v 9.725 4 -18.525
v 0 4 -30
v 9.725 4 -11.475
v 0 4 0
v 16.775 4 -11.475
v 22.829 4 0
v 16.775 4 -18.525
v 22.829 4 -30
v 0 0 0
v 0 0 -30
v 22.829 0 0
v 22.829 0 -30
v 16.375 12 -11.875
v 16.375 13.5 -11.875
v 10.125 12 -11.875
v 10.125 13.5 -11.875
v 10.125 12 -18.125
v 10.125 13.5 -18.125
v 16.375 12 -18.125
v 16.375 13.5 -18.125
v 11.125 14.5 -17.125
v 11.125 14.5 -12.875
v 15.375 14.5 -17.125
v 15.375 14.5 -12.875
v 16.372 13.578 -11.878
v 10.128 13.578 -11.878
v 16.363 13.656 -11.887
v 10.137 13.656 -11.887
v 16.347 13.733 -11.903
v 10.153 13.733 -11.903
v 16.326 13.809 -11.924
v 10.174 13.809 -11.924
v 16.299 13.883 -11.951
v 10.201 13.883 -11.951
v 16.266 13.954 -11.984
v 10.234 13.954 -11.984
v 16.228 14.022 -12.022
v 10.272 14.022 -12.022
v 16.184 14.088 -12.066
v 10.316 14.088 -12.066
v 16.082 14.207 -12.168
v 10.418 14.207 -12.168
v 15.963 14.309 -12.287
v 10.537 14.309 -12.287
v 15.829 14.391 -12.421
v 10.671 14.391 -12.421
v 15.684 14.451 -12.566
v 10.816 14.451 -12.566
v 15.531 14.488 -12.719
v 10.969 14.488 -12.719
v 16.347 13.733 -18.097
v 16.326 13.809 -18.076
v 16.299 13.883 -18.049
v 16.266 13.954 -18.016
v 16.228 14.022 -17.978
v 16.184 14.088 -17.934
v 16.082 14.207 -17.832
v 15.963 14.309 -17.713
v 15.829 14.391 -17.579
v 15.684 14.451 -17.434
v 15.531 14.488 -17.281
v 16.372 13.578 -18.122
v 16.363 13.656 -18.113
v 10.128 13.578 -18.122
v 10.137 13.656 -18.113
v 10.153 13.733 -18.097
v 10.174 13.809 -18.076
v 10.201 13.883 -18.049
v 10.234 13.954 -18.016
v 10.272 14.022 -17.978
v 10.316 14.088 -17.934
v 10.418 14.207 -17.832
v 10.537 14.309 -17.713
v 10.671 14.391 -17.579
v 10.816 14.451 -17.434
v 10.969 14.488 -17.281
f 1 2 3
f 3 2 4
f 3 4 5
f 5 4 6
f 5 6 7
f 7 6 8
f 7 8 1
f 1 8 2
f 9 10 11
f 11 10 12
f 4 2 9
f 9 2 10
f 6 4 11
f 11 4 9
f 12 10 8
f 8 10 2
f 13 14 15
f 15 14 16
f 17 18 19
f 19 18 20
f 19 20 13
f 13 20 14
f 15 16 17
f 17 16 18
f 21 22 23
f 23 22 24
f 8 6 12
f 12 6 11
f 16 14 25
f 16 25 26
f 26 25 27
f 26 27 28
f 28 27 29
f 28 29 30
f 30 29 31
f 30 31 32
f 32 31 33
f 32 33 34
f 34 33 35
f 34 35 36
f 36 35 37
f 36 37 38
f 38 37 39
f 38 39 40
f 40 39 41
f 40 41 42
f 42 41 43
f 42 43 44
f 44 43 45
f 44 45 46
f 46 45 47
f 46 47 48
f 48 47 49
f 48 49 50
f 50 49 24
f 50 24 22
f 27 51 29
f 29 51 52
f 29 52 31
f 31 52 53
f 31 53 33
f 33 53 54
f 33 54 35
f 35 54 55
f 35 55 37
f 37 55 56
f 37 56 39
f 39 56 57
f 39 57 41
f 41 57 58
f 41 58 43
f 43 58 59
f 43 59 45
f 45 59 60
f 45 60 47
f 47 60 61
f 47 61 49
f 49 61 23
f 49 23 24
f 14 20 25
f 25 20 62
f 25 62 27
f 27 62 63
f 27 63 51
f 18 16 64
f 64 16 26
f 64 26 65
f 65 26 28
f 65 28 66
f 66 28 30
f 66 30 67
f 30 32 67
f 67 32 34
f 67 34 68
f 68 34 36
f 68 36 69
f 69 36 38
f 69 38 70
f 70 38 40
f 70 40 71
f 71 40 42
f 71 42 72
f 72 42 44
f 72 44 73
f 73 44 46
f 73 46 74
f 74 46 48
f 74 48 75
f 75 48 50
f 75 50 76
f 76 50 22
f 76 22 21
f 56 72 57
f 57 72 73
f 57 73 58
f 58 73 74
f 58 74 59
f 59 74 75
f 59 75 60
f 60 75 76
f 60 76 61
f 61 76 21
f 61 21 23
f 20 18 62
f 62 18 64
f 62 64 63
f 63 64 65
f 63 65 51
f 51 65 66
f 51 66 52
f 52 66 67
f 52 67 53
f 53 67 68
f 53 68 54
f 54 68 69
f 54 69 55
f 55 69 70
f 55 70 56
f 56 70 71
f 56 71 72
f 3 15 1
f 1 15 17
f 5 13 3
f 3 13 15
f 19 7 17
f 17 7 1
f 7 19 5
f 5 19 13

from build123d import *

# Parameters (mm, degrees)
SKETCH1_W                = 240
SKETCH1_H                = 30
SKETCH1_W_2              = 6.25
SKETCH1_H_2              = 6.25
BOSS_EXTRUDE1_DEPTH      = 4
SKETCH2_W                = 6.25
SKETCH2_H                = 6.25
BOSS_EXTRUDE2_DEPTH      = 10.5
BOSS_EXTRUDE2_DEPTH_BACK = 4
SKETCH3_W                = 222.243091979
SKETCH3_H                = 95.437848018
CUT_EXTRUDE1_DEPTH       = 11.5
CUT_EXTRUDE1_DEPTH_BACK  = 5
FILLET1_R                = 1
CHAMFER1_SIZE            = 0.4
CHAMFER1_SIZE2           = 8


with BuildPart() as part:
    # Sketch1 → Boss-Extrude1 (new body)
    with BuildSketch(Plane(origin=(0, 0, 0), x_dir=(1, 0, 0), z_dir=(0, 1, 0))):
        with Locations((120, 15)):
            Rectangle(SKETCH1_W, SKETCH1_H)
        with Locations((13.25, 15)):
            Rectangle(SKETCH1_W_2, SKETCH1_H_2, mode=Mode.SUBTRACT)
        with Locations((43.75, 15)):
            Rectangle(SKETCH1_W_2, SKETCH1_H_2, mode=Mode.SUBTRACT)
        with Locations((74.25, 15)):
            Rectangle(SKETCH1_W_2, SKETCH1_H_2, mode=Mode.SUBTRACT)
        with Locations((104.75, 15)):
            Rectangle(SKETCH1_W_2, SKETCH1_H_2, mode=Mode.SUBTRACT)
        with Locations((135.25, 15)):
            Rectangle(SKETCH1_W_2, SKETCH1_H_2, mode=Mode.SUBTRACT)
        with Locations((165.75, 15)):
            Rectangle(SKETCH1_W_2, SKETCH1_H_2, mode=Mode.SUBTRACT)
        with Locations((196.25, 15)):
            Rectangle(SKETCH1_W_2, SKETCH1_H_2, mode=Mode.SUBTRACT)
        with Locations((226.75, 15)):
            Rectangle(SKETCH1_W_2, SKETCH1_H_2, mode=Mode.SUBTRACT)
    extrude(amount=BOSS_EXTRUDE1_DEPTH)

    # Sketch2 → Boss-Extrude2 (add, two sides)
    with BuildSketch(Plane(origin=(0, 4, 0), x_dir=(1, 0, 0), z_dir=(0, 1, 0))) as boss_extrude2_sk:
        with Locations((13.25, 15)):
            Rectangle(SKETCH2_W, SKETCH2_H)
        with Locations((43.75, 15)):
            Rectangle(SKETCH2_W, SKETCH2_H)
        with Locations((74.25, 15)):
            Rectangle(SKETCH2_W, SKETCH2_H)
        with Locations((104.75, 15)):
            Rectangle(SKETCH2_W, SKETCH2_H)
        with Locations((135.25, 15)):
            Rectangle(SKETCH2_W, SKETCH2_H)
        with Locations((165.75, 15)):
            Rectangle(SKETCH2_W, SKETCH2_H)
        with Locations((196.25, 15)):
            Rectangle(SKETCH2_W, SKETCH2_H)
        with Locations((226.75, 15)):
            Rectangle(SKETCH2_W, SKETCH2_H)
    extrude(amount=BOSS_EXTRUDE2_DEPTH)
    extrude(boss_extrude2_sk.sketch, amount=-BOSS_EXTRUDE2_DEPTH_BACK)

    # Sketch3 → Cut-Extrude1 (cut, two sides)
    with BuildSketch(Plane(origin=(0, 4, 0), x_dir=(1, 0, 0), z_dir=(0, 1, 0))) as cut_extrude1_sk:
        with Locations((133.951037232, 10.683129124)):
            Rectangle(SKETCH3_W, SKETCH3_H)
    extrude(amount=CUT_EXTRUDE1_DEPTH, mode=Mode.SUBTRACT)
    extrude(cut_extrude1_sk.sketch, amount=-CUT_EXTRUDE1_DEPTH_BACK, mode=Mode.SUBTRACT)

    # Fillet1
    fillet1_edges = [part.edges().sort_by_distance(p)[0] for p in [
        (10.125, 14.5, -15),
        (13.25, 14.5, -11.875),
        (16.375, 14.5, -15),
        (13.25, 14.5, -18.125),
    ]]
    fillet(fillet1_edges, radius=FILLET1_R)

    # Chamfer1
    chamfer1_edges = [part.edges().sort_by_distance(p)[0] for p in [
        (10.125, 4, -15),
        (13.25, 4, -11.875),
        (16.375, 4, -15),
        (13.25, 4, -18.125),
    ]]
    chamfer1_side = [part.faces().sort_by_distance(p)[0] for p in [
        (0.376986163, 4, -15),
    ]]
    chamfer(chamfer1_edges, length=CHAMFER1_SIZE, length2=CHAMFER1_SIZE2, reference=chamfer1_side[0])


solid = part.part
